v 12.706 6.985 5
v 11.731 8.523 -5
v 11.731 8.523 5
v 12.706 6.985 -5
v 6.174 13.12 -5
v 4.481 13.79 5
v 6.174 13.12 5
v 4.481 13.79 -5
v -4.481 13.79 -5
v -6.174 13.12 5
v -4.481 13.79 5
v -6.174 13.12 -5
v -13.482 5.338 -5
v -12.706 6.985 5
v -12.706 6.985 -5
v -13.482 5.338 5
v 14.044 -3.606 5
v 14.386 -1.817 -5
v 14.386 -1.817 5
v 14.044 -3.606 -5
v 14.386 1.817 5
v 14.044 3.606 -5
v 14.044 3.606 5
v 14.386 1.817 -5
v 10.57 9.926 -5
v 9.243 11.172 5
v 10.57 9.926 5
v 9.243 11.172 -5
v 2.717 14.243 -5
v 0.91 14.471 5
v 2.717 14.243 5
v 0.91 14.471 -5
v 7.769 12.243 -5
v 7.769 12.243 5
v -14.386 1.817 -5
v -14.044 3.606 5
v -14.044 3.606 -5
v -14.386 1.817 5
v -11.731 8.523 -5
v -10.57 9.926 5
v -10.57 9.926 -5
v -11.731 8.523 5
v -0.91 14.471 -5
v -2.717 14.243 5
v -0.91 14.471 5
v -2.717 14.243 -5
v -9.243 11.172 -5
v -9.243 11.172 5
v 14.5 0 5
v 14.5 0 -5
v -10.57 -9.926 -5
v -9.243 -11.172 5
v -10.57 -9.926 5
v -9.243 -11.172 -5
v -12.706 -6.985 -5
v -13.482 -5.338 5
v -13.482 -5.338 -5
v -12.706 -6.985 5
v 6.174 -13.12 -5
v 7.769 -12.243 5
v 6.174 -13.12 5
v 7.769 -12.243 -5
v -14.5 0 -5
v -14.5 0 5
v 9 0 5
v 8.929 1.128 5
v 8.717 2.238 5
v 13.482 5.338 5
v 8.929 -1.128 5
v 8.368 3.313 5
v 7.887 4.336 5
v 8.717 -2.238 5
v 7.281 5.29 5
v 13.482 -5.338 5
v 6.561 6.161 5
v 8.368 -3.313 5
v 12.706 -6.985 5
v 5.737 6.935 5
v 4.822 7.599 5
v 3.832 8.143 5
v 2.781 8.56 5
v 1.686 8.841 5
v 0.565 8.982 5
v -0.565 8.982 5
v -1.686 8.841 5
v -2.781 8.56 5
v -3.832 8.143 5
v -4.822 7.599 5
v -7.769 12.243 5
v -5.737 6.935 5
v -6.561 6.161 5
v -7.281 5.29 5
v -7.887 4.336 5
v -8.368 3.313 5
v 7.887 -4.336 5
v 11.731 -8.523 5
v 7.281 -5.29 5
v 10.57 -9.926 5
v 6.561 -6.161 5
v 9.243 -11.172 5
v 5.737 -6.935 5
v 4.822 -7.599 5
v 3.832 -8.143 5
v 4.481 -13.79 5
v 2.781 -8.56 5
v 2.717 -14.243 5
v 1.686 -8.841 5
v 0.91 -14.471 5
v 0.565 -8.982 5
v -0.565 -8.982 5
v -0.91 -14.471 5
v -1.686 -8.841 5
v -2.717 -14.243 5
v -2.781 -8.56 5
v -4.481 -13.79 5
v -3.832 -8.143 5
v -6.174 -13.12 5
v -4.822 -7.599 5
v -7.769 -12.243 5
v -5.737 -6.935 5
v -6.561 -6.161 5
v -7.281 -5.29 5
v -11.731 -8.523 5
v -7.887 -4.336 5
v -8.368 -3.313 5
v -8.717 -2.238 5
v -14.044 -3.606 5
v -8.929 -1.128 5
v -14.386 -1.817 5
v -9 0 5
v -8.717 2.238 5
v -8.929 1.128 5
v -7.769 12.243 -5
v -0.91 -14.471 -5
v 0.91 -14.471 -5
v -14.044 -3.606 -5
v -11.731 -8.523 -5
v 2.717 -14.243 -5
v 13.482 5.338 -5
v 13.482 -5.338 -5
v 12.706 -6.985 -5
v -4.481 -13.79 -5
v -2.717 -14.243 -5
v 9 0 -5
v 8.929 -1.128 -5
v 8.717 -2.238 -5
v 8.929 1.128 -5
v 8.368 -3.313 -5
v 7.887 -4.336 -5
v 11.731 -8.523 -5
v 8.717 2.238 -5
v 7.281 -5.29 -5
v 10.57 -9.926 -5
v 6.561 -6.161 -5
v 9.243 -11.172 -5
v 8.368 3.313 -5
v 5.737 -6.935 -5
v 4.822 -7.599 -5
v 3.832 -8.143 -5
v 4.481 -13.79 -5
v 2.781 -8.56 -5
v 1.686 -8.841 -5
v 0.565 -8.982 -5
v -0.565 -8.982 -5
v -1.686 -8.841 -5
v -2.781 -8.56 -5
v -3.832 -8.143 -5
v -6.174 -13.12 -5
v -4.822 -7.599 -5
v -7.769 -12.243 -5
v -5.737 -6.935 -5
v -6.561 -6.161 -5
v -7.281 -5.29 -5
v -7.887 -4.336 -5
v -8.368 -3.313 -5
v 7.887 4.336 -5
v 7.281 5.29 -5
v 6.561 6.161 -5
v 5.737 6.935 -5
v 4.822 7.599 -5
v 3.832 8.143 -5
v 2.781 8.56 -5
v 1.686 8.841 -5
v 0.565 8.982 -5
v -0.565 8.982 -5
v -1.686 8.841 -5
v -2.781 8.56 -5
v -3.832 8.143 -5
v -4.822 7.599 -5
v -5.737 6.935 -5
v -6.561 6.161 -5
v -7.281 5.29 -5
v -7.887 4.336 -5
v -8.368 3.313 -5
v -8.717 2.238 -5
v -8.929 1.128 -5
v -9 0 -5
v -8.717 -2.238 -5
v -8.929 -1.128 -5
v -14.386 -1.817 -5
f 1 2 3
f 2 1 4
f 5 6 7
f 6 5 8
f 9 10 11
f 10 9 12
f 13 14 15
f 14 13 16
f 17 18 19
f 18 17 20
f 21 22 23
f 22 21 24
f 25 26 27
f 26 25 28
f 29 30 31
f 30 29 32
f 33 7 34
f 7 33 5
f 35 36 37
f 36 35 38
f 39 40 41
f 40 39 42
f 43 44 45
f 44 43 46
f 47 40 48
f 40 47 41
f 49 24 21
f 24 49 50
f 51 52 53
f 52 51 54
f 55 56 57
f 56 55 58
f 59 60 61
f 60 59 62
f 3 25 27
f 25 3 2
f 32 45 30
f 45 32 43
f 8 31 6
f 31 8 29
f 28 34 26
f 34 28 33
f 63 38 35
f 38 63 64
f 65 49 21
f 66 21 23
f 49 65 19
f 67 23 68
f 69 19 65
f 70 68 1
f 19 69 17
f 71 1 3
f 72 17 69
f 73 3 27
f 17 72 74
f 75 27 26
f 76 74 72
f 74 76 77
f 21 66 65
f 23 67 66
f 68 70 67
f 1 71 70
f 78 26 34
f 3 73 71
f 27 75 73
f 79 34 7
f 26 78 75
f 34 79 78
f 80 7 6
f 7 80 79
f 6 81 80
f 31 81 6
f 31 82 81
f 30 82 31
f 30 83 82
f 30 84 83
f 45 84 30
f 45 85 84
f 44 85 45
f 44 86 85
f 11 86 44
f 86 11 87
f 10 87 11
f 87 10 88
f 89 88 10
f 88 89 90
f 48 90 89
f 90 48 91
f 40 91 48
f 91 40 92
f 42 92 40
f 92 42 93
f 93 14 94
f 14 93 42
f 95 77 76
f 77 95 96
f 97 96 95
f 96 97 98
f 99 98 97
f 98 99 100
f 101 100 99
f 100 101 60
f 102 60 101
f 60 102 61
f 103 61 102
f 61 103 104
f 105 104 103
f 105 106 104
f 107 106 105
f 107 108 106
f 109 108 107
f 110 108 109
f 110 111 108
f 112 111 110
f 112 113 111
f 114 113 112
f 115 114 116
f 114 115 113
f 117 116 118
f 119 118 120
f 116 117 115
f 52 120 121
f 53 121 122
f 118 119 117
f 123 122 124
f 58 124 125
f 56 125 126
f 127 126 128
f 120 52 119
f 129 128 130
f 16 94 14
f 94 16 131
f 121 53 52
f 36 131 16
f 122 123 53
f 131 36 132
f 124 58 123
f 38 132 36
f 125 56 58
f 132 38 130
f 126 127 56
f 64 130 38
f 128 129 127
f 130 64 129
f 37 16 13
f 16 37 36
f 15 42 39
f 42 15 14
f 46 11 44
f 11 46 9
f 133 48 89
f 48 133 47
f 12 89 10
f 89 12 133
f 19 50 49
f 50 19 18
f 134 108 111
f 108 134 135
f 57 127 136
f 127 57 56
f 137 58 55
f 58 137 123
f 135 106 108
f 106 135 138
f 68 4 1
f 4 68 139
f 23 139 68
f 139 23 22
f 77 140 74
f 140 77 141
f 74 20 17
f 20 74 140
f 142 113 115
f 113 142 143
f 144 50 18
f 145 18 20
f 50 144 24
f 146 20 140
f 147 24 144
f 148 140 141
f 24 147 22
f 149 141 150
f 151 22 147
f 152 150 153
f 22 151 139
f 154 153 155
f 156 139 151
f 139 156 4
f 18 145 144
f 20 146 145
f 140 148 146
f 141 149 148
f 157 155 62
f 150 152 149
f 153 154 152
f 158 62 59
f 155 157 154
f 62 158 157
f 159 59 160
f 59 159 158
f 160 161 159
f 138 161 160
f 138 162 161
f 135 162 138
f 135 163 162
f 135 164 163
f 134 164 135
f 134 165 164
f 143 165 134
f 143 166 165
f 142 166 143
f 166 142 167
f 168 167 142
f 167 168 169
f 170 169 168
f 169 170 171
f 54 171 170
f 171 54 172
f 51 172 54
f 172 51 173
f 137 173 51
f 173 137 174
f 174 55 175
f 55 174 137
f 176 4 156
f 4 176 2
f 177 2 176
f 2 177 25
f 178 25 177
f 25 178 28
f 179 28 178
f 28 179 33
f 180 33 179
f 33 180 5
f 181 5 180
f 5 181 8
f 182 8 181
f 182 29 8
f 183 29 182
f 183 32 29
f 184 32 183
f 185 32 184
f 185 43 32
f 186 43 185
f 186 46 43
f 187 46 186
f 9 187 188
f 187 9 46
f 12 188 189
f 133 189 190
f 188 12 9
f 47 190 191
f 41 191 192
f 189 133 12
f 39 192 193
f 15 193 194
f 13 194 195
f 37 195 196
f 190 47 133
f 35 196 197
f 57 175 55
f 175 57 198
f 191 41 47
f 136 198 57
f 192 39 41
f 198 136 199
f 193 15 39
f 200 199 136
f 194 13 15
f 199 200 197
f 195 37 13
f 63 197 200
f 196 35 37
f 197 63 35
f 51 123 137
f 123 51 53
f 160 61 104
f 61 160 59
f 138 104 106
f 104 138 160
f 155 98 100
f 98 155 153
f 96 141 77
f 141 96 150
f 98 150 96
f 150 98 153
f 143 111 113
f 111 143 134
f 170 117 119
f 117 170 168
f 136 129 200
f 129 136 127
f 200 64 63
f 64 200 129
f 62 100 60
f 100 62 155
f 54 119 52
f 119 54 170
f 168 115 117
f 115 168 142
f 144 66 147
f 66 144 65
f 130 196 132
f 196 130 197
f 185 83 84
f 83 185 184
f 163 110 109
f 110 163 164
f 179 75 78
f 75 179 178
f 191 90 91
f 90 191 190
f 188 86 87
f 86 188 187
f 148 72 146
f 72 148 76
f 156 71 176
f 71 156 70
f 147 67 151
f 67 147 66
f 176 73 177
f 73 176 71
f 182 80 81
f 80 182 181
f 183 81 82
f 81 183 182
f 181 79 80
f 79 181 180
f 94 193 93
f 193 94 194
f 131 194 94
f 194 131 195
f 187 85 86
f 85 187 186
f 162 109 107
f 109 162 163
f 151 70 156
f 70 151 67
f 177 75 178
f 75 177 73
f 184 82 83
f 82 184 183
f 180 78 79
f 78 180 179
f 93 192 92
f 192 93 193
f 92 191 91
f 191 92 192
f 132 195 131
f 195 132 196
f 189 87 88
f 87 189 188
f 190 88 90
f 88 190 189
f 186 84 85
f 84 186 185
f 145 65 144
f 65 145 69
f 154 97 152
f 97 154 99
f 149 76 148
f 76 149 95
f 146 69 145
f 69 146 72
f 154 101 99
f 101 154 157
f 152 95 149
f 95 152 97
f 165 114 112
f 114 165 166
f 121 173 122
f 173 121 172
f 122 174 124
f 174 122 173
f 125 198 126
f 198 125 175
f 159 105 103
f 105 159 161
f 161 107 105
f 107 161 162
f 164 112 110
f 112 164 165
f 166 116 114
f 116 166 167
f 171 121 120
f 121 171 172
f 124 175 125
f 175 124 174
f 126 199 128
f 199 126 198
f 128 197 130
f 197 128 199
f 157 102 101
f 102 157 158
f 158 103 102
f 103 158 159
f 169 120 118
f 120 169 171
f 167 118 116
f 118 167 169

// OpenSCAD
$fn = 50;


difference() {
	union() {
		translate(v = [0, 0, -5.0000000000]) {
			cylinder(h = 10, r = 14.5000000000);
		}
	}
	union() {
		translate(v = [0, 0, -100.0000000000]) {
			cylinder(h = 200, r = 9);
		}
	}
}
